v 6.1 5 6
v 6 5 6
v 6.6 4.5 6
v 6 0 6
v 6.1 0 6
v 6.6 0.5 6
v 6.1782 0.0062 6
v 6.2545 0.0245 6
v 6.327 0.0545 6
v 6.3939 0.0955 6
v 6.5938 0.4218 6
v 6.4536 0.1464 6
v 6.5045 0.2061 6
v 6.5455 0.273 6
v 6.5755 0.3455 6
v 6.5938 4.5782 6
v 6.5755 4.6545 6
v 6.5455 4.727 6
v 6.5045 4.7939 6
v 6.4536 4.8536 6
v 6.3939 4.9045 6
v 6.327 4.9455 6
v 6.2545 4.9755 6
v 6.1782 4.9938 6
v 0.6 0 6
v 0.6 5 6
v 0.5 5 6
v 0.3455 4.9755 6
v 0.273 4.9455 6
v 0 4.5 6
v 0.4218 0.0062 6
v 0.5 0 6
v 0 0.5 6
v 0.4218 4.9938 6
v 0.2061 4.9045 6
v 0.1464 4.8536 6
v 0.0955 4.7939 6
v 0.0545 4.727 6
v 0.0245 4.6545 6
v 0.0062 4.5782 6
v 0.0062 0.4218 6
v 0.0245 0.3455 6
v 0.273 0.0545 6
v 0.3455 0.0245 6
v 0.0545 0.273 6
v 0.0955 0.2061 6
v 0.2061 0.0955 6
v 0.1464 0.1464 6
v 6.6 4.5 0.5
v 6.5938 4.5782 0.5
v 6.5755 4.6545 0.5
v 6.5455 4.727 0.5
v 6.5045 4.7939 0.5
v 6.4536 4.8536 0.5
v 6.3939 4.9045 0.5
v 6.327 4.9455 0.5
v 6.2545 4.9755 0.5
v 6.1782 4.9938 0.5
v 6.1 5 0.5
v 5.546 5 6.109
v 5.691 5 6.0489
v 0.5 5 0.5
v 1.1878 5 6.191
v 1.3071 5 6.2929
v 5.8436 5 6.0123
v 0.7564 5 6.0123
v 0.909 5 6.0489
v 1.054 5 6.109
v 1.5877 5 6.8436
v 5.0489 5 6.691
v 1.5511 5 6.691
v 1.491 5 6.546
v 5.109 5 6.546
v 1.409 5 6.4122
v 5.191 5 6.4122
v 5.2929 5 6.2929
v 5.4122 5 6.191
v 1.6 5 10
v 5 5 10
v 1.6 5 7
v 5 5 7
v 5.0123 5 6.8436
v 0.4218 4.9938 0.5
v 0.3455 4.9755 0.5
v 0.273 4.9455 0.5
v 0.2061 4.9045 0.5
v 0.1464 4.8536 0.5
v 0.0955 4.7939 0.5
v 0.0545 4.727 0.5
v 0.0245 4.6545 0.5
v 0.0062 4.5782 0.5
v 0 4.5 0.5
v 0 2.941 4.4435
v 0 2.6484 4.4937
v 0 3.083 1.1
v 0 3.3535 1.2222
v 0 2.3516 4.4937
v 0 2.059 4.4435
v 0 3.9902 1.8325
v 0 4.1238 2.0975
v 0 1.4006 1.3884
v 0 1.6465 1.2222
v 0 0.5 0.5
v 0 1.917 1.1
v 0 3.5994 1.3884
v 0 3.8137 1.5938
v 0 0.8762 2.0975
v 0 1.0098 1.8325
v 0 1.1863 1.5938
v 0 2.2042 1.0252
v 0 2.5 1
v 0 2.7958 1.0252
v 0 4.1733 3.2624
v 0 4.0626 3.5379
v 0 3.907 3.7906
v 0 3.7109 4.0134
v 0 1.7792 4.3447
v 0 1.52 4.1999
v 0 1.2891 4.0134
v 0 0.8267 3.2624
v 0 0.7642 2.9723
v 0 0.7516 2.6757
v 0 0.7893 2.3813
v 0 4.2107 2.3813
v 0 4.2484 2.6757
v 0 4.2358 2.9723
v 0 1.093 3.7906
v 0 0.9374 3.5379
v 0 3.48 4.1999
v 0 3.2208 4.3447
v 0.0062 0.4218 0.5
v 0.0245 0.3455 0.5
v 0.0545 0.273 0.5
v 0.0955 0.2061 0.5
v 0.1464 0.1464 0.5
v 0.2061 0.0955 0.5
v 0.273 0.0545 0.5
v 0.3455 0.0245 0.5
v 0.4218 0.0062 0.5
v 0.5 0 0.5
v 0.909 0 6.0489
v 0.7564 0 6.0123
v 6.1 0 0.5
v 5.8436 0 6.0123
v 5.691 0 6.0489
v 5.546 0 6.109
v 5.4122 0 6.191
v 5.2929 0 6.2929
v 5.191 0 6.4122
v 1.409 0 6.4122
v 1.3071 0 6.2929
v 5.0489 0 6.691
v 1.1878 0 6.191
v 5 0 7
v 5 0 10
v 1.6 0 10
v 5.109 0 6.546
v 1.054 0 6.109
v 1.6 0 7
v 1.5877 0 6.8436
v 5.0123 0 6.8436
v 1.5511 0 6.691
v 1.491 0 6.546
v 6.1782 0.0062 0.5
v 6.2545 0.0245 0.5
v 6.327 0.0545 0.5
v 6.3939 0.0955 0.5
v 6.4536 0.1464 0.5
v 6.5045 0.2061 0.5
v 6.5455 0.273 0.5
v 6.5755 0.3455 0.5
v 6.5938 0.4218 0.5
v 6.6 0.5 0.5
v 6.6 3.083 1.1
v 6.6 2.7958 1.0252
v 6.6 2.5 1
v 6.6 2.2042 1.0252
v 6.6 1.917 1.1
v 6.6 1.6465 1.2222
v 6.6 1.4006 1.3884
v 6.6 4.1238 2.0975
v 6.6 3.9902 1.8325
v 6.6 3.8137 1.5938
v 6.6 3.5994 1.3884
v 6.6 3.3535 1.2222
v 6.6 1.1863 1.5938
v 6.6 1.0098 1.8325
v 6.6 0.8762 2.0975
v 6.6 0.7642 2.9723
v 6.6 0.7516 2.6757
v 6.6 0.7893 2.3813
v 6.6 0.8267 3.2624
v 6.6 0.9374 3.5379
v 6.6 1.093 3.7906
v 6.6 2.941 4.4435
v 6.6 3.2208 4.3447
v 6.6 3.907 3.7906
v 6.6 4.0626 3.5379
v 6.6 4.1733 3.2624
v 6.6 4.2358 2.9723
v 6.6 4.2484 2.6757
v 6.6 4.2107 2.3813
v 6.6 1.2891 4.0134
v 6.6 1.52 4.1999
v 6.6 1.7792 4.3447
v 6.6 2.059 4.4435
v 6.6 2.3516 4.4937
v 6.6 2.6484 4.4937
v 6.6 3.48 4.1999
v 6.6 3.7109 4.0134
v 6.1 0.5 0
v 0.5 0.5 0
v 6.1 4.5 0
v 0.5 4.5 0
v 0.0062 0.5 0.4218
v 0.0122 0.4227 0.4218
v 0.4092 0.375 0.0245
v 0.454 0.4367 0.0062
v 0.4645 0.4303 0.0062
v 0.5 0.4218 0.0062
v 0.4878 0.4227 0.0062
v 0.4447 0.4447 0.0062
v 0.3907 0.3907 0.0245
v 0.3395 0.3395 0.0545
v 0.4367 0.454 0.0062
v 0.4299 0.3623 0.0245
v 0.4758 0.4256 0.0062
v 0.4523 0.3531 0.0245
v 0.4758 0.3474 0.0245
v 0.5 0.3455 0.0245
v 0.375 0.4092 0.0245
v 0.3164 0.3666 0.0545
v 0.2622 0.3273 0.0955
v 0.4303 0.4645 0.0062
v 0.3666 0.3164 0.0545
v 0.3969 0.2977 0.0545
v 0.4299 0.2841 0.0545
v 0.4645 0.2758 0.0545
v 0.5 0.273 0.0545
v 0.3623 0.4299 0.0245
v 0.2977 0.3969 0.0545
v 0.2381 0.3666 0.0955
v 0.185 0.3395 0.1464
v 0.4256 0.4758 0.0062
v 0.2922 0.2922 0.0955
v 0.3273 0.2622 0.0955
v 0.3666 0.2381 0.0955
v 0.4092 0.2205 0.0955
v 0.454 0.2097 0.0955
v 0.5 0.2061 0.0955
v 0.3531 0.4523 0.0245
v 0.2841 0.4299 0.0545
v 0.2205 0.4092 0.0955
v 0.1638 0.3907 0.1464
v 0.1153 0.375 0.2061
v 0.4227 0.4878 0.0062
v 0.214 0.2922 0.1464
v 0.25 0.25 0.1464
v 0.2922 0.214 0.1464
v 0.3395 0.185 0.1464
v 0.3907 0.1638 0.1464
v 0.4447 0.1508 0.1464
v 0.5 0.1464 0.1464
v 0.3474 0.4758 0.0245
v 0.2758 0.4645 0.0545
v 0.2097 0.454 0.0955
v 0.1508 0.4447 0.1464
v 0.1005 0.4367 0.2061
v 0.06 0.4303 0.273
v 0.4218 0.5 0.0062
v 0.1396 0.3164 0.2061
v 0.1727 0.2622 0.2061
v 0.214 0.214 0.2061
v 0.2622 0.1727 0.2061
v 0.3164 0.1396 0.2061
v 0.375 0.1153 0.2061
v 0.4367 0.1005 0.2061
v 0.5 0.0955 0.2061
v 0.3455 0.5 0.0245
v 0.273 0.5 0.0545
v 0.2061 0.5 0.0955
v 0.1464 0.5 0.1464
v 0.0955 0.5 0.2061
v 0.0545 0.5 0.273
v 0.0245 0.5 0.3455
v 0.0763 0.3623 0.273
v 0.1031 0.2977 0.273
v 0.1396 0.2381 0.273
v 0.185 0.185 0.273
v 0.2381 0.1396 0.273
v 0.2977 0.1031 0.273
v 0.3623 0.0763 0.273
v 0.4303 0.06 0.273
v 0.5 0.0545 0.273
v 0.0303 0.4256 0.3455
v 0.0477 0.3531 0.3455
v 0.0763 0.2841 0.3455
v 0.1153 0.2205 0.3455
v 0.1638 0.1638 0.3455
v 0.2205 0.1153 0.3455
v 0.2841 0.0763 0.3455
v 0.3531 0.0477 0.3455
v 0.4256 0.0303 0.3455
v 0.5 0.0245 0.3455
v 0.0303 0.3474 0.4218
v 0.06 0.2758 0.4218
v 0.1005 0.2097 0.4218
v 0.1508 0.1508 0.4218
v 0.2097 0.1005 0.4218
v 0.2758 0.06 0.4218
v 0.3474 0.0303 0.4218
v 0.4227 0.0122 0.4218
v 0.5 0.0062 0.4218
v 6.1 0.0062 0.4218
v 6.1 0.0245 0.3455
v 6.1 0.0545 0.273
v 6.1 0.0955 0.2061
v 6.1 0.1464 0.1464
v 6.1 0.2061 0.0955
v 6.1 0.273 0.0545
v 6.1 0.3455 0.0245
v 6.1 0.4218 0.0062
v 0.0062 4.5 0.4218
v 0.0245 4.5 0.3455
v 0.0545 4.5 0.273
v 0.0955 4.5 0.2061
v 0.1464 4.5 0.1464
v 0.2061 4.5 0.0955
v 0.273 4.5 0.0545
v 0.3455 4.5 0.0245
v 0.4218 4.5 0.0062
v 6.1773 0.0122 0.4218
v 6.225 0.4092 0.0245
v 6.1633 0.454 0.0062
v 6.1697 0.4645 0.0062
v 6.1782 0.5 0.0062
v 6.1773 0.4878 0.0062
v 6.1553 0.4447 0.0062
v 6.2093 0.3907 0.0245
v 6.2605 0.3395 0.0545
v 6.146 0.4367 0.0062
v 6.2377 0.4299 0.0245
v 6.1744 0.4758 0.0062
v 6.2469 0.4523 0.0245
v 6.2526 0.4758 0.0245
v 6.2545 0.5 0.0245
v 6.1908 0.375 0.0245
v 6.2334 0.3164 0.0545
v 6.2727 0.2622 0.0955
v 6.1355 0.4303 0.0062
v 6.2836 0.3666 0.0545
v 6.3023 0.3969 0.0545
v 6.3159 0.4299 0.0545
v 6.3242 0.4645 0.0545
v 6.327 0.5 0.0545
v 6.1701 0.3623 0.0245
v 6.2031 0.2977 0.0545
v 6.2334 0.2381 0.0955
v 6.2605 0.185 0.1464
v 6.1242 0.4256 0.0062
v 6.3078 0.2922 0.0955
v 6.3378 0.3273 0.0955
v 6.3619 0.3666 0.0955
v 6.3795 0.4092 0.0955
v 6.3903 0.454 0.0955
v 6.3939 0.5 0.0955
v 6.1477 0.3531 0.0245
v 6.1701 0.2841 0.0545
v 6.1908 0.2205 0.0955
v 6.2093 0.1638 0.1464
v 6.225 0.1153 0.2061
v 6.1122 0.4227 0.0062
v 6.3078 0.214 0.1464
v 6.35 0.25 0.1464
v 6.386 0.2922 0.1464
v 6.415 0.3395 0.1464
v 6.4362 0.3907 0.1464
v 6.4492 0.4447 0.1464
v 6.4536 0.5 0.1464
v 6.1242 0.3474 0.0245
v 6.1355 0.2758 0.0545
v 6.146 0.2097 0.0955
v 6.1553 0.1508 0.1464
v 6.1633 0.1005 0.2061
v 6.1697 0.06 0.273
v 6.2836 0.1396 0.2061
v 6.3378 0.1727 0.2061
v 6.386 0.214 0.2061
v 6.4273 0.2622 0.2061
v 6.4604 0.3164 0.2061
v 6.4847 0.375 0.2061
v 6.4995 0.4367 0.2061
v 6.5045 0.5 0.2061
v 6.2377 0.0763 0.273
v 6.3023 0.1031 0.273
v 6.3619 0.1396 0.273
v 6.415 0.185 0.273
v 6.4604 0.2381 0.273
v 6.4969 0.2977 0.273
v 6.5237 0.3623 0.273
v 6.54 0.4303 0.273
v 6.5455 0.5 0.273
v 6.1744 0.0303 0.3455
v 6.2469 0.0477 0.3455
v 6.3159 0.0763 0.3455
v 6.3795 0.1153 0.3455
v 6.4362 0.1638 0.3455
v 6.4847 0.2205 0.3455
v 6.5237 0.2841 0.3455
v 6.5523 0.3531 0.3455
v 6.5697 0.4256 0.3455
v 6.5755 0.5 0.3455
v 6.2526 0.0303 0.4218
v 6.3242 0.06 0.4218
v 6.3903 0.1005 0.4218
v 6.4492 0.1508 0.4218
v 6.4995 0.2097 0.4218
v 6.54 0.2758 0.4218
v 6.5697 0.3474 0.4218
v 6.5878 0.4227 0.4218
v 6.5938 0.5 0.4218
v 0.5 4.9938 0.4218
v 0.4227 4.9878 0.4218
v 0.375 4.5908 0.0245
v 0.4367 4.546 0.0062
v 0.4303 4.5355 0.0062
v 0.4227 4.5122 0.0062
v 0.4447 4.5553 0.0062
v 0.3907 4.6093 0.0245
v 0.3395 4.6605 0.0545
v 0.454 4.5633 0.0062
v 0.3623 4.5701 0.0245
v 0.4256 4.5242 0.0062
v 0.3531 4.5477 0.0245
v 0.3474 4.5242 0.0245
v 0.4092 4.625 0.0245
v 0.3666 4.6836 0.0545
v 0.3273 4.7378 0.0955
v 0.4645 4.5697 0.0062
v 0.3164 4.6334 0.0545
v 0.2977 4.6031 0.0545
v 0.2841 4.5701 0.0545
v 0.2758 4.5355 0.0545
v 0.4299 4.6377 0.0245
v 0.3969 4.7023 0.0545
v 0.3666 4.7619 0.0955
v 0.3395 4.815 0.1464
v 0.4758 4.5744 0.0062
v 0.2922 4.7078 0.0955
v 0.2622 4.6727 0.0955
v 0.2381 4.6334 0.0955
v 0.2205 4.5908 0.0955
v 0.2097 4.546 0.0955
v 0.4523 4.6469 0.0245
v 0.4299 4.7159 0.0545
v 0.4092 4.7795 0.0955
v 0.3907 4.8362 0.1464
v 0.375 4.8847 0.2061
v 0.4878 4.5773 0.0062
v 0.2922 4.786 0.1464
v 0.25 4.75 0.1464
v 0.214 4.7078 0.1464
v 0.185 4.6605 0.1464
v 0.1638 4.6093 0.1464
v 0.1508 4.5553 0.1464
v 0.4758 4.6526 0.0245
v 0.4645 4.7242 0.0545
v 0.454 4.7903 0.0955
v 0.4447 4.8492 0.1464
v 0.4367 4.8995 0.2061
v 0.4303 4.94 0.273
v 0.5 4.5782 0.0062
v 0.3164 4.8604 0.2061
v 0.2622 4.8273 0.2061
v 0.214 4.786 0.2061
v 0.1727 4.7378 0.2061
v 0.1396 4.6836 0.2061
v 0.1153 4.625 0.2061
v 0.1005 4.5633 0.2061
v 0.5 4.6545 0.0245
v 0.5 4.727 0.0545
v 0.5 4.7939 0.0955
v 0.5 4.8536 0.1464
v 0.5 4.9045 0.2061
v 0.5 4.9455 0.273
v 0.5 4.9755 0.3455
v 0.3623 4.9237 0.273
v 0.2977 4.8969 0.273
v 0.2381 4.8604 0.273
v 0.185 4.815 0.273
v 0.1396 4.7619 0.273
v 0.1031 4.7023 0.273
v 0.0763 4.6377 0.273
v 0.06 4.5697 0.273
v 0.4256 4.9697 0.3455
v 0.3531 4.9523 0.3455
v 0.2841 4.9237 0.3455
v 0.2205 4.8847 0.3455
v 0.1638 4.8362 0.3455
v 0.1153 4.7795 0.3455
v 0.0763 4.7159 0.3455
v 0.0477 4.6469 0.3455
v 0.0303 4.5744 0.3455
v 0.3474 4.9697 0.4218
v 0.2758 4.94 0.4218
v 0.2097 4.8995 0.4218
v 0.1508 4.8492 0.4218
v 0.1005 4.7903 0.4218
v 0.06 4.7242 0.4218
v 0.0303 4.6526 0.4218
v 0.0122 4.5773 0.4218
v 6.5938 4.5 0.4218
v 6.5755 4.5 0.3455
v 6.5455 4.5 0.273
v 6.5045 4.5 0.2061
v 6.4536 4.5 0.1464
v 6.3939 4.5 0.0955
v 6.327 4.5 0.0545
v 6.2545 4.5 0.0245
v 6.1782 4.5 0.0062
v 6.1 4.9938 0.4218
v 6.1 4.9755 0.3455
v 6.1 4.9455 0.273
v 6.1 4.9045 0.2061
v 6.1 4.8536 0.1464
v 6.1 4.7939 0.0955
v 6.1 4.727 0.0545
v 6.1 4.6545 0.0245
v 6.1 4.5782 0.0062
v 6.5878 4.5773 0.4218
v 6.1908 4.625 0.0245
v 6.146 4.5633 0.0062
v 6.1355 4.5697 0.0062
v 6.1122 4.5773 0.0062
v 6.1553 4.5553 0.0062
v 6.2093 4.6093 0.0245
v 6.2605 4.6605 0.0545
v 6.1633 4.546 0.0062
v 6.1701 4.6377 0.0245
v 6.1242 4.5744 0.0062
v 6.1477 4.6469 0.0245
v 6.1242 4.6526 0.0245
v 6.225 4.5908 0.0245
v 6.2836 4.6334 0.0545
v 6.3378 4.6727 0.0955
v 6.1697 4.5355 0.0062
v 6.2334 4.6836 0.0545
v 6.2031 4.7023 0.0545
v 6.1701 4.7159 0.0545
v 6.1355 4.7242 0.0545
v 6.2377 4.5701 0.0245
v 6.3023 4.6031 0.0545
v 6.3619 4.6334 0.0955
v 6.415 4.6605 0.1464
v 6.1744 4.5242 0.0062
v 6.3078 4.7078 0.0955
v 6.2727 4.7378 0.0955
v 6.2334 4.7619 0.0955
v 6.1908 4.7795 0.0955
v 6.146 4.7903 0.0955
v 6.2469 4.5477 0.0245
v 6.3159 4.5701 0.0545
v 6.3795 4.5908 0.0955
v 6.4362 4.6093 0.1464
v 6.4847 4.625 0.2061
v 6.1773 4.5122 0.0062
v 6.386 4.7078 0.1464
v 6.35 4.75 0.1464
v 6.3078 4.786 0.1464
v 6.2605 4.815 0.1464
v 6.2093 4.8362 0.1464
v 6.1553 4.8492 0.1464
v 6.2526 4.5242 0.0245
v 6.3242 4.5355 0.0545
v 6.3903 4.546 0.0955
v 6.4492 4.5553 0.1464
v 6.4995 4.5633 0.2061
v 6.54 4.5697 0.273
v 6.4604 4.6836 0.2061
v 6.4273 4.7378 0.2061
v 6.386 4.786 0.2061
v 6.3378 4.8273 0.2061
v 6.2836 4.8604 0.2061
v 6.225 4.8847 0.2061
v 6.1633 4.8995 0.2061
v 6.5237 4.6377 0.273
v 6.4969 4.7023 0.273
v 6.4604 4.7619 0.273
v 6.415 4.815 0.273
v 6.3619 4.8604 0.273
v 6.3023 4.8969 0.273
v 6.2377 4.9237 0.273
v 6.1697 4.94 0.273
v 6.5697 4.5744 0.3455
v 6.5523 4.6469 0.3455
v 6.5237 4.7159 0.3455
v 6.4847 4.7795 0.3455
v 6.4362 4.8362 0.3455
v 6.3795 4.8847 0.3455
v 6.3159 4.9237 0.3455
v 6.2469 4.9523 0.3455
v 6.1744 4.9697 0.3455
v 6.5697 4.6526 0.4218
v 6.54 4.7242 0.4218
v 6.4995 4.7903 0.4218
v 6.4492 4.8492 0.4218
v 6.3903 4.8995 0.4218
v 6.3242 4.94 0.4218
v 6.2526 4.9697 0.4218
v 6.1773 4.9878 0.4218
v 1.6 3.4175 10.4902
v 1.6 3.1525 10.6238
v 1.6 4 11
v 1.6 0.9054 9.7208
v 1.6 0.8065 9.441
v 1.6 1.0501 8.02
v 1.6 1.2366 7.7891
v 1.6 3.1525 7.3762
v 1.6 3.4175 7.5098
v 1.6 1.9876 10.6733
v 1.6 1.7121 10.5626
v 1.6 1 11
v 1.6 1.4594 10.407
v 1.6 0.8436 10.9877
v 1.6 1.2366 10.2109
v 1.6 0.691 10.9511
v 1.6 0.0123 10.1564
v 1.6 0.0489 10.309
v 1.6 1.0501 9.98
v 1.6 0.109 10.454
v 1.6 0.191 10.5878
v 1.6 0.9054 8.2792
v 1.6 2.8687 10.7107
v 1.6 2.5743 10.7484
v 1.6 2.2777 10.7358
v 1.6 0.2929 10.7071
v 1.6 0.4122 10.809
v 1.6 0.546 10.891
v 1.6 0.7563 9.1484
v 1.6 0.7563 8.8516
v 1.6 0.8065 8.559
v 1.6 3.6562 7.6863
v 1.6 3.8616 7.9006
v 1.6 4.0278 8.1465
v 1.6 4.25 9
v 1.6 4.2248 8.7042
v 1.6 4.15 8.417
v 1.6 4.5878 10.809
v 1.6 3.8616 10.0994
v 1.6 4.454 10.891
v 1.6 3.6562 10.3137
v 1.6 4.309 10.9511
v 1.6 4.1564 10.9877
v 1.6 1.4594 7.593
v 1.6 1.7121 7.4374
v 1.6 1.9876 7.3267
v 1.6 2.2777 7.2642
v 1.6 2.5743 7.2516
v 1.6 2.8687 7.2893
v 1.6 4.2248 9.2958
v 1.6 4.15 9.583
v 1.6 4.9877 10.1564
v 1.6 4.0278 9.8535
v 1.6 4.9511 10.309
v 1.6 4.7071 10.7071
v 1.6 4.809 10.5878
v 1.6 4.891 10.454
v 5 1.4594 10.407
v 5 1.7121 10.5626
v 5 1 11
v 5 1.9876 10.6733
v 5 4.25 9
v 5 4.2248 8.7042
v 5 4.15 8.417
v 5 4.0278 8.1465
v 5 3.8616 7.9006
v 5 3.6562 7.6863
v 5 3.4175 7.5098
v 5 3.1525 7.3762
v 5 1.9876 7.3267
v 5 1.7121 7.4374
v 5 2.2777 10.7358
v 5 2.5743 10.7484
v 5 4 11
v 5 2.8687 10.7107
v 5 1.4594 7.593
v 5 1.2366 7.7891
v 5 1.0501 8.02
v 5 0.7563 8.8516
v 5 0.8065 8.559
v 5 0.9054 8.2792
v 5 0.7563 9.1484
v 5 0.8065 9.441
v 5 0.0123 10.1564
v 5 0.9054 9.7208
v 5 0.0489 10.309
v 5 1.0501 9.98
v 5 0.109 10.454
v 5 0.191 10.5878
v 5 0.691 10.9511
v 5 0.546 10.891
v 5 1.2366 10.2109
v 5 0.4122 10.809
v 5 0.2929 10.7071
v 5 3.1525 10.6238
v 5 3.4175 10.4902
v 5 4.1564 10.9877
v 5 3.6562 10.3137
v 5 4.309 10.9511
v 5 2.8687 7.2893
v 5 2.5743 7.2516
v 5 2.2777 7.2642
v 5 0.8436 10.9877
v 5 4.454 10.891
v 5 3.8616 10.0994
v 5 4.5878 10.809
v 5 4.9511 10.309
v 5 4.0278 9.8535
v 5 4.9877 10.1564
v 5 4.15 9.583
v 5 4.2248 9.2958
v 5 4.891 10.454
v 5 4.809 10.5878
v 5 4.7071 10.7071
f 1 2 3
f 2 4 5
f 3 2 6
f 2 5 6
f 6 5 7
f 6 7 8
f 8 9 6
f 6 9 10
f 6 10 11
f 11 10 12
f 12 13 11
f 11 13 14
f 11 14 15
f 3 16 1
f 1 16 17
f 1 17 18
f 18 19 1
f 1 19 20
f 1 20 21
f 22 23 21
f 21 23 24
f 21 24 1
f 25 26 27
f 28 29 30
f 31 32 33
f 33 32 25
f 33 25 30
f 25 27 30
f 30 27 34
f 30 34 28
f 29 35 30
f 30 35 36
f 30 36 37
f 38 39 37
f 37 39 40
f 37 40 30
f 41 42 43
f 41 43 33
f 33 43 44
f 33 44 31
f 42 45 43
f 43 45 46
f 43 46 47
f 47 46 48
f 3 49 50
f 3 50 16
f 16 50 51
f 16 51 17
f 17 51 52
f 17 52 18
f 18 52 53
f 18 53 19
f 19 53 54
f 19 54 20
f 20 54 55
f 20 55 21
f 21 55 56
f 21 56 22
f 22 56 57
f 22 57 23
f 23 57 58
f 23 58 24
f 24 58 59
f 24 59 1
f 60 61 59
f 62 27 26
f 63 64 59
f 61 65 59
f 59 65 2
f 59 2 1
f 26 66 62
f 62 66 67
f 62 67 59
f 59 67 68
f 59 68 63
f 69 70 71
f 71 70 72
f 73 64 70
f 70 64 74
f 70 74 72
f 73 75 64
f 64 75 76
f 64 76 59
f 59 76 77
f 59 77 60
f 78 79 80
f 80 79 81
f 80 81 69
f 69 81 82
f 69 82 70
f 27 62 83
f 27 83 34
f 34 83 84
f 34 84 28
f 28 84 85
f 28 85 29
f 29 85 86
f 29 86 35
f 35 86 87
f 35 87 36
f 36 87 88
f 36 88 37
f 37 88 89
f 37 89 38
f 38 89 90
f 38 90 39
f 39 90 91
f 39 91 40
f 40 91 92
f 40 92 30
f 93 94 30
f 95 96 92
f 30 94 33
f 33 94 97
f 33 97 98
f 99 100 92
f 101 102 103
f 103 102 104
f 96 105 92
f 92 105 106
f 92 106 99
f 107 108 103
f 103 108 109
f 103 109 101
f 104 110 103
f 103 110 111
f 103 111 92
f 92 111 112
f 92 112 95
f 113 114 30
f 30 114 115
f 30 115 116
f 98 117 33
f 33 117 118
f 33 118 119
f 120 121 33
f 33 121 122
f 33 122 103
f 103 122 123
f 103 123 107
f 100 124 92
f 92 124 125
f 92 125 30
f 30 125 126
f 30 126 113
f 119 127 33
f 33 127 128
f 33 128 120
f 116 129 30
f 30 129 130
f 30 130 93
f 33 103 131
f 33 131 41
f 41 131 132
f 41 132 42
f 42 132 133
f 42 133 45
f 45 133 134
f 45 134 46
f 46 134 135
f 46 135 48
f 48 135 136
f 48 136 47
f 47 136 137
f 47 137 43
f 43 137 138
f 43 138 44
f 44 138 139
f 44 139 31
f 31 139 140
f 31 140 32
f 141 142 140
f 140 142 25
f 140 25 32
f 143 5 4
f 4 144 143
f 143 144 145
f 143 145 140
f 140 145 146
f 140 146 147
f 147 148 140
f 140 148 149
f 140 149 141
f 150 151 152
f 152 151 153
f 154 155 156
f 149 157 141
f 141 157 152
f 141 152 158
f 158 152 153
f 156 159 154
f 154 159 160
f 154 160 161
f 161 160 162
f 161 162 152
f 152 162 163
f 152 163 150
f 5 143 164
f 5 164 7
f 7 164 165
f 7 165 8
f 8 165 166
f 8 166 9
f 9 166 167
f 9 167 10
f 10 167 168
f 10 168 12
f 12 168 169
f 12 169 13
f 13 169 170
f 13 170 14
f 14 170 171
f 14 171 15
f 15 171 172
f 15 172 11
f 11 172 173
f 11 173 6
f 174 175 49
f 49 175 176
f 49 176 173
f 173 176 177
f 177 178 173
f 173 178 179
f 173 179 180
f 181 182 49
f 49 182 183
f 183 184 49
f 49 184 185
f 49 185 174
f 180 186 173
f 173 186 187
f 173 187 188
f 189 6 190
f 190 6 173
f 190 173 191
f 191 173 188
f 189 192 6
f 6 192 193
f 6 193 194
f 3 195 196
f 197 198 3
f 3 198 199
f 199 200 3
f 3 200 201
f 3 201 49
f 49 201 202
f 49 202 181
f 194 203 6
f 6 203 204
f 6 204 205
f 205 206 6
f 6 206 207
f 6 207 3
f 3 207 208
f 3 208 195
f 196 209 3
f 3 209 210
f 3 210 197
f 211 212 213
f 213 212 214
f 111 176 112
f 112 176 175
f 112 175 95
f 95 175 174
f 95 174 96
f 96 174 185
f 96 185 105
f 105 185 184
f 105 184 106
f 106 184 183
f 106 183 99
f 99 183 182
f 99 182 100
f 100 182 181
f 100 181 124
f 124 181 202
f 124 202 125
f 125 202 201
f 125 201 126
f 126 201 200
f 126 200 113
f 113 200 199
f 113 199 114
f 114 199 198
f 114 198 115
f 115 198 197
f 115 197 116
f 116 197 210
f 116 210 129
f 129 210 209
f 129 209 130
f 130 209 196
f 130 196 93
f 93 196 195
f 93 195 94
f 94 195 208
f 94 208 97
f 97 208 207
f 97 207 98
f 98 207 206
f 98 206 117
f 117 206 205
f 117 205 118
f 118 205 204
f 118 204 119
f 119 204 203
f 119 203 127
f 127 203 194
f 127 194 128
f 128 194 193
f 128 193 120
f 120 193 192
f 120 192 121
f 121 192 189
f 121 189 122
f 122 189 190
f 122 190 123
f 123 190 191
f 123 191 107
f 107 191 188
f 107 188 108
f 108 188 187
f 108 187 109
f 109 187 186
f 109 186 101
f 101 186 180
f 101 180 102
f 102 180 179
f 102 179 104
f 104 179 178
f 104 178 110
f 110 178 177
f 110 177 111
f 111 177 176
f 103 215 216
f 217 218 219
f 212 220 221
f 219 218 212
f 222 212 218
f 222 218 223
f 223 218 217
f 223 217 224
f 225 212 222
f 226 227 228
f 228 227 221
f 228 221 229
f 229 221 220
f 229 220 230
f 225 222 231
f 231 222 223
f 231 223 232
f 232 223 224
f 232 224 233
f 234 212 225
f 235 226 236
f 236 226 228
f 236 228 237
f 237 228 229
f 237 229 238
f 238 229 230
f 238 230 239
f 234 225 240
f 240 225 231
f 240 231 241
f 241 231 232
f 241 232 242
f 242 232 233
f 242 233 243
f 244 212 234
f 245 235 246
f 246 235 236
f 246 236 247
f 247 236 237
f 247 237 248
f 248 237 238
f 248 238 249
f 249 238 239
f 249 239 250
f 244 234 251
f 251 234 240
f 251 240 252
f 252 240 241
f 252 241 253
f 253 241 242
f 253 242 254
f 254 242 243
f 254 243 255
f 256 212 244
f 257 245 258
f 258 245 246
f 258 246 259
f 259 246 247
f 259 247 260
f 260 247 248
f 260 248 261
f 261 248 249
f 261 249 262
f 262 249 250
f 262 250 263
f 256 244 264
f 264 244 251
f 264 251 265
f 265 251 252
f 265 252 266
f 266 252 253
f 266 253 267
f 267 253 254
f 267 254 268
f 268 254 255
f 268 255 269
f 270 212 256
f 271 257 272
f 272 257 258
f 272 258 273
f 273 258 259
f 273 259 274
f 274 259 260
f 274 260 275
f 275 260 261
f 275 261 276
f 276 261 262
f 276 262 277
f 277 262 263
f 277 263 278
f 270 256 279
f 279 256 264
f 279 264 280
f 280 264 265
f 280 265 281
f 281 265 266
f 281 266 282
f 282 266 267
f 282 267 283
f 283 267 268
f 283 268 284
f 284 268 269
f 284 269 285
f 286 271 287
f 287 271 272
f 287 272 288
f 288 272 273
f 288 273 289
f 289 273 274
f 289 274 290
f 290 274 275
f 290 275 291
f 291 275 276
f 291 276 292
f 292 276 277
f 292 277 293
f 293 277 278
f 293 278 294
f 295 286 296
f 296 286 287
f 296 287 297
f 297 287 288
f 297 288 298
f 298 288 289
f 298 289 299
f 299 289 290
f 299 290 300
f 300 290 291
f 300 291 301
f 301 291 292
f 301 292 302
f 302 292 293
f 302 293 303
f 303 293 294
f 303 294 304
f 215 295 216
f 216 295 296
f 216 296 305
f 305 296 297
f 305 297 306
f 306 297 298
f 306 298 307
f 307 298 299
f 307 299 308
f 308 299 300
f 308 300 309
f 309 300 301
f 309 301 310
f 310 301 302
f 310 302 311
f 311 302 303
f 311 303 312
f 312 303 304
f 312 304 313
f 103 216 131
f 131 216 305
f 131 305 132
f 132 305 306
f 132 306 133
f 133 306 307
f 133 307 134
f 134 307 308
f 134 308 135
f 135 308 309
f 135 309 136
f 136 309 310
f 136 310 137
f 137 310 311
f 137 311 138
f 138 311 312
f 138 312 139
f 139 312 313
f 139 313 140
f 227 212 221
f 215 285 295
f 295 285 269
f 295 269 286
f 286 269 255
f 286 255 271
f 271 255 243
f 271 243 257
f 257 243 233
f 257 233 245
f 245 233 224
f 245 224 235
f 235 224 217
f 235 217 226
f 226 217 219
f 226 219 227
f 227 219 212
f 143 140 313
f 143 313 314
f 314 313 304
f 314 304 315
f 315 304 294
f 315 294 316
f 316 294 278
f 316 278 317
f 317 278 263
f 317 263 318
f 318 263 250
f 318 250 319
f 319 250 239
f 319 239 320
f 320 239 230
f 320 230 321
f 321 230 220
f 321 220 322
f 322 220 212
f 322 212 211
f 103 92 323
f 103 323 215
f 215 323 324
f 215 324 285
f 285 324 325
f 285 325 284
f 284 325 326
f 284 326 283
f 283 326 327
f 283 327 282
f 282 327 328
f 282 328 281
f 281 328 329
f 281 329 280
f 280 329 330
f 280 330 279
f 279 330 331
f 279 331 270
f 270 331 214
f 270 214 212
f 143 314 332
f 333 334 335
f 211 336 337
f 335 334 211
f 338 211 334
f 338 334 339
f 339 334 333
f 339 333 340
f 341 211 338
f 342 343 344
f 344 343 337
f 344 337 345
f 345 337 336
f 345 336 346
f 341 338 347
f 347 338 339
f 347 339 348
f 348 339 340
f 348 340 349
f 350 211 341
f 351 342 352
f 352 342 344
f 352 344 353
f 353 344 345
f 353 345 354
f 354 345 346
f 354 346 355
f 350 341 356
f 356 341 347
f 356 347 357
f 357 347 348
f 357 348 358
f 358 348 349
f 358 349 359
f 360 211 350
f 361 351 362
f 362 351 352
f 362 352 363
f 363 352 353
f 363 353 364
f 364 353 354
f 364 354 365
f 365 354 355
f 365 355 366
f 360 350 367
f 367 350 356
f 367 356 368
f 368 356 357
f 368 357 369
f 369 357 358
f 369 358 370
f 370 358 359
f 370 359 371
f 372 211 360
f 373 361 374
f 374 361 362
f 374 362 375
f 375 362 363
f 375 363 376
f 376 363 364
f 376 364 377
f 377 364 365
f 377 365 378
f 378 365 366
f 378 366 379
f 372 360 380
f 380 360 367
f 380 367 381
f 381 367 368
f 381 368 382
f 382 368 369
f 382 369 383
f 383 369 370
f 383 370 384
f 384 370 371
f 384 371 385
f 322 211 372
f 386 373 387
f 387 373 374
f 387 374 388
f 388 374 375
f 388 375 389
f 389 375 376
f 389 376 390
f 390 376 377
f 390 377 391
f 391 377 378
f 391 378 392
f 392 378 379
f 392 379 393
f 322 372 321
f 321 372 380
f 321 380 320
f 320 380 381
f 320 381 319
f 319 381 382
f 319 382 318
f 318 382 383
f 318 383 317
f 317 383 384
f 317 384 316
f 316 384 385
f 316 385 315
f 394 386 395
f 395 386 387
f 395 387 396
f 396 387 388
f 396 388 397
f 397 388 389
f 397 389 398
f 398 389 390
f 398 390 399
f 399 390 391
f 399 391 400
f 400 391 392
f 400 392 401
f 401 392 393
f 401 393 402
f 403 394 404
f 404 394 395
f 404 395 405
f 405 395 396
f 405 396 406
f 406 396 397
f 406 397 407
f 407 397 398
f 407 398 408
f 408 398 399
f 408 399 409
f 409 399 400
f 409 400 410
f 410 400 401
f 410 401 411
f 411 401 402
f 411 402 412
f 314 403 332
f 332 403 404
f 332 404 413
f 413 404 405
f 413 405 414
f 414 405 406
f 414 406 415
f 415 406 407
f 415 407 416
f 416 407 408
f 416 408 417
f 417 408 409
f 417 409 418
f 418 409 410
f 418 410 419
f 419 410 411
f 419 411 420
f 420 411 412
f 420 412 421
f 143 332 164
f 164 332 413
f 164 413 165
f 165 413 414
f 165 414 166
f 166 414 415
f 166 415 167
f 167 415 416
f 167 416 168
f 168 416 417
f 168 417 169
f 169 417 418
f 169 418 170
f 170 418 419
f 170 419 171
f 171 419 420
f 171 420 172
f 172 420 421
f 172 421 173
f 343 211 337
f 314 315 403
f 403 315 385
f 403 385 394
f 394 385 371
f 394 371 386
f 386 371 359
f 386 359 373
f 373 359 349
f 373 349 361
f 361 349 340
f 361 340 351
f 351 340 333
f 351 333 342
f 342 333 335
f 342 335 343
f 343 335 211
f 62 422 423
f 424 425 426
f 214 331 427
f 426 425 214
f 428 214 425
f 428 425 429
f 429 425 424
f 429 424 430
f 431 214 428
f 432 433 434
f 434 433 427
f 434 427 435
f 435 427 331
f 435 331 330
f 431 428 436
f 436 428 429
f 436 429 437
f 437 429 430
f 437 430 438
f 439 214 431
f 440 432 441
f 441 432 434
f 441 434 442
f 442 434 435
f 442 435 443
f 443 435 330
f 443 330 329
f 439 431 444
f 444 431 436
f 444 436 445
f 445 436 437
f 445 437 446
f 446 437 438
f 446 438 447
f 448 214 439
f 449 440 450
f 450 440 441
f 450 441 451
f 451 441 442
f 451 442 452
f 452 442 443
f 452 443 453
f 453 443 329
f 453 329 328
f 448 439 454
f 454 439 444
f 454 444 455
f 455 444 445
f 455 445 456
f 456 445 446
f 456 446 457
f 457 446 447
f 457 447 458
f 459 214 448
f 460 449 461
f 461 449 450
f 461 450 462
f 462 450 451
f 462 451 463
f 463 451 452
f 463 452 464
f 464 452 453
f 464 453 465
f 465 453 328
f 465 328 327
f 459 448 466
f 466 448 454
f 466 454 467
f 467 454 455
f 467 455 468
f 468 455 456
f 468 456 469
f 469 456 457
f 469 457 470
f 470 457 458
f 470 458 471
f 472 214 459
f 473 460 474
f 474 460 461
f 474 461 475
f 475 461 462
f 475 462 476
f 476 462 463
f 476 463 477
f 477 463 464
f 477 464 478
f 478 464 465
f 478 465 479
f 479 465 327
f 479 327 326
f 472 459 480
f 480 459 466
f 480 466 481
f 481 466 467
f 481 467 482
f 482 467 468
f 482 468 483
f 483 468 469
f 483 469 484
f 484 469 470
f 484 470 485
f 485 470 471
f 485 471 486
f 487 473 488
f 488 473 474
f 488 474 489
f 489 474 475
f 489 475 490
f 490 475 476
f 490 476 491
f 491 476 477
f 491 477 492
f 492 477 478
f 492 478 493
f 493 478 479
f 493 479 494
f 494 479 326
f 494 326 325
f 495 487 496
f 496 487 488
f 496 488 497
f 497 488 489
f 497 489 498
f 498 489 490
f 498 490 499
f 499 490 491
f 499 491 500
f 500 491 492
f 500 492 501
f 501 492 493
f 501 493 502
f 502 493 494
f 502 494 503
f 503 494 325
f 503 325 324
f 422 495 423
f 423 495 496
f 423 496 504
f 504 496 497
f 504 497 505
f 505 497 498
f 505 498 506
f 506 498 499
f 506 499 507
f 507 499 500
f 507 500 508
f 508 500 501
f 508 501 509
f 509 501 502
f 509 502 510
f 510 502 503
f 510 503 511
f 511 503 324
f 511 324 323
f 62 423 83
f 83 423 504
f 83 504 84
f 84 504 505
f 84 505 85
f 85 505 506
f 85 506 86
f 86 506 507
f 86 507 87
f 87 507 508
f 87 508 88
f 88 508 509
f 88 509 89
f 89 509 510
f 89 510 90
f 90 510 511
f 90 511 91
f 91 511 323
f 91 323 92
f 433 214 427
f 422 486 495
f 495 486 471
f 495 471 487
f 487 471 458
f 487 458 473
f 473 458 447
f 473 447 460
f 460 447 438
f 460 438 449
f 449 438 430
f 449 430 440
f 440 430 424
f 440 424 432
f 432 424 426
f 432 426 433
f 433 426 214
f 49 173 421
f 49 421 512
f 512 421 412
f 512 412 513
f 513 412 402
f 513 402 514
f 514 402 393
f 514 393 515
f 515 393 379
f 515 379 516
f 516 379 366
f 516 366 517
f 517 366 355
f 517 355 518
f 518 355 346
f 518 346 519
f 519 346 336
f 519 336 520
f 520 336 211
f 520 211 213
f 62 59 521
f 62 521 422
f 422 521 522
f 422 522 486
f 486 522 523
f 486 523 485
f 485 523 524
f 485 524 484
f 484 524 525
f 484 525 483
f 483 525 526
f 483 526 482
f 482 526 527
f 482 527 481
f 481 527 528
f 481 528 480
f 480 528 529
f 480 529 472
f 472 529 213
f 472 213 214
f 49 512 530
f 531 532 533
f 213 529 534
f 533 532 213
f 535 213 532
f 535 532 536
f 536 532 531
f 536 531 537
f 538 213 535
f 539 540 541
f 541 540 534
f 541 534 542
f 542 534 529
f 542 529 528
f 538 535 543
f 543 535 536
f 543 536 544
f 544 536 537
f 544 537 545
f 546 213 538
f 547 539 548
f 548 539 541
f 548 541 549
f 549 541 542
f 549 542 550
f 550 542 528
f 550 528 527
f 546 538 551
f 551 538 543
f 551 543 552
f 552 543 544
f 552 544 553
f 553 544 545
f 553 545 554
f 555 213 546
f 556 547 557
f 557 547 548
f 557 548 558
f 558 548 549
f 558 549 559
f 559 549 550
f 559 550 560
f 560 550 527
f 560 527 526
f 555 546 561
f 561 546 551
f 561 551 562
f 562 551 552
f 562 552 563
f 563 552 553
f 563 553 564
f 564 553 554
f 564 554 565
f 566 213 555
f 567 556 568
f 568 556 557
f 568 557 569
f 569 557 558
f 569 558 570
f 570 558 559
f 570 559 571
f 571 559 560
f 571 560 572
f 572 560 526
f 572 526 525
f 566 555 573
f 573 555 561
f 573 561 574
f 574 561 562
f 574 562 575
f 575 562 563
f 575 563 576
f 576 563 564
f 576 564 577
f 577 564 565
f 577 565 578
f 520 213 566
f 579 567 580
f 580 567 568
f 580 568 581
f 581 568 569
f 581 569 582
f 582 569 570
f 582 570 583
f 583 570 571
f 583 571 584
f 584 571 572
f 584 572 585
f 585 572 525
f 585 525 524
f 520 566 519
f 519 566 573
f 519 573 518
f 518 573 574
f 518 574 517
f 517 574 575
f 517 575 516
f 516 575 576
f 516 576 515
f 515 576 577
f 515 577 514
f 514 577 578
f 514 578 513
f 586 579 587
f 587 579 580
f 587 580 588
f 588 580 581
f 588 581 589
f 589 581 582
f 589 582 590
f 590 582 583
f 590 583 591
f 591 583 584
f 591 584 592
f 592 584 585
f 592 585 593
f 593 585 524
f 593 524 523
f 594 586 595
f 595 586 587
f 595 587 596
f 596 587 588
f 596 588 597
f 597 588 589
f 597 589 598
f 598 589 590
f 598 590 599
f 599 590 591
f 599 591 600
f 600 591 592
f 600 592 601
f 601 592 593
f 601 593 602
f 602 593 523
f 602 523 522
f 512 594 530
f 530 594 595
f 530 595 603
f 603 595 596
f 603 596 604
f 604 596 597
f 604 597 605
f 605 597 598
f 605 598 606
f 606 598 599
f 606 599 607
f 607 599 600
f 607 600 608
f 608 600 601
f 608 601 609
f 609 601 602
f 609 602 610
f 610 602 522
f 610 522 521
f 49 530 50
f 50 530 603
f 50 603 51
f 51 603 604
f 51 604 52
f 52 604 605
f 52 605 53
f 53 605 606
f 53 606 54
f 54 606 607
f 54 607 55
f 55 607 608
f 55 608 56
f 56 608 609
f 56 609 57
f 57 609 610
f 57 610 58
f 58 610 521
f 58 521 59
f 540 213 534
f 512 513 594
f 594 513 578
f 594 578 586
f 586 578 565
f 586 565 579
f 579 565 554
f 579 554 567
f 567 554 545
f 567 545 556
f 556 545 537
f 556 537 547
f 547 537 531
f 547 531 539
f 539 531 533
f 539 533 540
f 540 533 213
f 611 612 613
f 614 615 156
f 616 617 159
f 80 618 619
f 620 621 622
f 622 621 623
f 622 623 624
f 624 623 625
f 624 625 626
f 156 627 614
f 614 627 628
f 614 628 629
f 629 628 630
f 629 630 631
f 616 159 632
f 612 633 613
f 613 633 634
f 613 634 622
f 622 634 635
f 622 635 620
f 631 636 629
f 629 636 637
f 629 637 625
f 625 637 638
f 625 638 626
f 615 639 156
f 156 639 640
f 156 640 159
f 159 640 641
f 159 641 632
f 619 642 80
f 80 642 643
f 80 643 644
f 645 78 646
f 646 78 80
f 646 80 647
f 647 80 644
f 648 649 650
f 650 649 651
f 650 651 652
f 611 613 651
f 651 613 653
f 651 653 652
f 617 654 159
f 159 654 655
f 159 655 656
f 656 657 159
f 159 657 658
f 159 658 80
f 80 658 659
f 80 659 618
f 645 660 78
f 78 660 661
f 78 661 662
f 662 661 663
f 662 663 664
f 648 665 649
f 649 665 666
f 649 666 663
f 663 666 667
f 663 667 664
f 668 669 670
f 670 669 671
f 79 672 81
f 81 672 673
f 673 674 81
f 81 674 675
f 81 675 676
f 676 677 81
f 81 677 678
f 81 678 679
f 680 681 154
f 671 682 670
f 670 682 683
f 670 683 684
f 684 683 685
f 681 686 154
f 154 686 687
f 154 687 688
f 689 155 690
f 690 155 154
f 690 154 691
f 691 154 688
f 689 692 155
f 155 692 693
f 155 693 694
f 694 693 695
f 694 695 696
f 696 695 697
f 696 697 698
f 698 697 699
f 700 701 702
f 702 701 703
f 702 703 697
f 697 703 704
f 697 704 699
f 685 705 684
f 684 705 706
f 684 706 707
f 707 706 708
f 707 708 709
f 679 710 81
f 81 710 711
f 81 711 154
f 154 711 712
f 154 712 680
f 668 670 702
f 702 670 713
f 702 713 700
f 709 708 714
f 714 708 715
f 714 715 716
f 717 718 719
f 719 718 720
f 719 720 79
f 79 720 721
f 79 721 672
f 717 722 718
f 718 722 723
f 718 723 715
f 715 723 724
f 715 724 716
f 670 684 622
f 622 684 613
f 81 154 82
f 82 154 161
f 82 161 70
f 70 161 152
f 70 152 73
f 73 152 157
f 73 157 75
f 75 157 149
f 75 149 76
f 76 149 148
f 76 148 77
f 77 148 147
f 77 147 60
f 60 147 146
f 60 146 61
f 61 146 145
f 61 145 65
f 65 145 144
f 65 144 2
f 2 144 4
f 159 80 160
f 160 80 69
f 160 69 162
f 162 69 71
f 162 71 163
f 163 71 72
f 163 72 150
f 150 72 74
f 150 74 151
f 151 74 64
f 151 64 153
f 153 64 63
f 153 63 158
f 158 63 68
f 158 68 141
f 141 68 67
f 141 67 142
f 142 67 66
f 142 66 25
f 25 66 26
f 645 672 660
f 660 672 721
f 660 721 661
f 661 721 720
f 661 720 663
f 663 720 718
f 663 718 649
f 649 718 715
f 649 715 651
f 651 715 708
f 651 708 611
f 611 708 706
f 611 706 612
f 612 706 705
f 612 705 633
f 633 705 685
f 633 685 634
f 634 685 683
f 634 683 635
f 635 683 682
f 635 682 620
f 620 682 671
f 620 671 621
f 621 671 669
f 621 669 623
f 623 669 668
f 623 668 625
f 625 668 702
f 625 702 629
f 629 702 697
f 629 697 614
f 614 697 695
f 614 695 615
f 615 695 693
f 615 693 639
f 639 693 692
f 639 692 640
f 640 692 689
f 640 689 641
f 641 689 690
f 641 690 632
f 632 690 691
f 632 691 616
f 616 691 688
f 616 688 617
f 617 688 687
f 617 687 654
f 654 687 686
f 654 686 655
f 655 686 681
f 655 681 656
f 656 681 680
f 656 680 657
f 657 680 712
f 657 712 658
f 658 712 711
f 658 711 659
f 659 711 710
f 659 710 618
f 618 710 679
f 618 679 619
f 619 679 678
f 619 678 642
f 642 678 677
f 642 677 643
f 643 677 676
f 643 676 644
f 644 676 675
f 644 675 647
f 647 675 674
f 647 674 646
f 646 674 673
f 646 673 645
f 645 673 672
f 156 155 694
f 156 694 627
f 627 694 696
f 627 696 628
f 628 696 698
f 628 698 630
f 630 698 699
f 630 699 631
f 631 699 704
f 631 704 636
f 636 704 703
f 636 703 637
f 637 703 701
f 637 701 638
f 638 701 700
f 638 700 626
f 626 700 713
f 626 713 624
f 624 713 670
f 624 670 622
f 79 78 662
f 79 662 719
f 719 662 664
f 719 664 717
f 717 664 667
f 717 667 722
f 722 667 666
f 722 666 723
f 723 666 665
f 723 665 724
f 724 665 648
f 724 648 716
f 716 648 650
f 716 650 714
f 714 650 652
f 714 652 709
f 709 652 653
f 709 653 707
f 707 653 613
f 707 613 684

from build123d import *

# Parameters (mm, degrees)
BOSS_EXTRUDE1_DEPTH = 6
SKETCH2_R           = 1.75
CUT_EXTRUDE1_DEPTH  = 6.6
FILLET1_R           = 0.5
SKETCH3_W           = 3.4
SKETCH3_H           = 5
BOSS_EXTRUDE2_DEPTH = 5
FILLET2_R           = 1
SKETCH5_R           = 1.75
CUT_EXTRUDE2_DEPTH  = 4
FILLET3_R           = 1


with BuildPart() as part:
    # Sketch1 → Boss-Extrude1 (new body)
    with BuildSketch(Plane.XY):
        with BuildLine():
            Line((0.5, 0), (6.1, 0))
            ThreePointArc((6.1, 0), (6.453553391, 0.146446609), (6.6, 0.5))
            Line((6.6, 0.5), (6.6, 4.5))
            ThreePointArc((6.6, 4.5), (6.453553391, 4.853553391), (6.1, 5))
            Line((6.1, 5), (0.5, 5))
            ThreePointArc((0.5, 5), (0.146446609, 4.853553391), (0, 4.5))
            Line((0, 4.5), (0, 0.5))
            ThreePointArc((0, 0.5), (0.146446609, 0.146446609), (0.5, 0))
        make_face()
    extrude(amount=BOSS_EXTRUDE1_DEPTH)

    # Sketch2 → Cut-Extrude1 (cut)
    with BuildSketch(Plane(origin=(6.6, 0, 0), x_dir=(0, 0, -1), z_dir=(1, 0, 0))):
        with Locations((-2.75, 2.5)):
            Circle(SKETCH2_R)
    extrude(amount=-CUT_EXTRUDE1_DEPTH, mode=Mode.SUBTRACT)

    # Fillet1
    fillet1_edges = [part.edges().sort_by_distance(p)[0] for p in [
        (0, 2.5, 0),
        (0.146446609, 4.853553391, 0),
        (3.3, 5, 0),
        (6.453553391, 4.853553391, 0),
        (6.6, 2.5, 0),
        (6.453553391, 0.146446609, 0),
        (3.3, 0, 0),
        (0.146446609, 0.146446609, 0),
    ]]
    fillet(fillet1_edges, radius=FILLET1_R)

    # Sketch3 → Boss-Extrude2 (add)
    with BuildSketch(Plane.XY.offset(6)):
        with Locations((3.3, 2.5)):
            Rectangle(SKETCH3_W, SKETCH3_H)
    extrude(amount=BOSS_EXTRUDE2_DEPTH)

    # Fillet2
    fillet2_edges = [part.edges().sort_by_distance(p)[0] for p in [
        (1.6, 2.5, 6),
        (5, 2.5, 6),
    ]]
    fillet(fillet2_edges, radius=FILLET2_R)

    # Sketch5 → Cut-Extrude2 (cut)
    with BuildSketch(Plane(origin=(5, 0, 0), x_dir=(0, 0, -1), z_dir=(1, 0, 0))):
        with Locations(Location((-9, 2.5, 0), (0, 0, 90))):
            Circle(SKETCH5_R)
    extrude(amount=-CUT_EXTRUDE2_DEPTH, mode=Mode.SUBTRACT)

    # Fillet3
    fillet3_edges = [part.edges().sort_by_distance(p)[0] for p in [
        (3.3, 5, 11),
        (3.3, 0, 11),
    ]]
    fillet(fillet3_edges, radius=FILLET3_R)


solid = part.part
